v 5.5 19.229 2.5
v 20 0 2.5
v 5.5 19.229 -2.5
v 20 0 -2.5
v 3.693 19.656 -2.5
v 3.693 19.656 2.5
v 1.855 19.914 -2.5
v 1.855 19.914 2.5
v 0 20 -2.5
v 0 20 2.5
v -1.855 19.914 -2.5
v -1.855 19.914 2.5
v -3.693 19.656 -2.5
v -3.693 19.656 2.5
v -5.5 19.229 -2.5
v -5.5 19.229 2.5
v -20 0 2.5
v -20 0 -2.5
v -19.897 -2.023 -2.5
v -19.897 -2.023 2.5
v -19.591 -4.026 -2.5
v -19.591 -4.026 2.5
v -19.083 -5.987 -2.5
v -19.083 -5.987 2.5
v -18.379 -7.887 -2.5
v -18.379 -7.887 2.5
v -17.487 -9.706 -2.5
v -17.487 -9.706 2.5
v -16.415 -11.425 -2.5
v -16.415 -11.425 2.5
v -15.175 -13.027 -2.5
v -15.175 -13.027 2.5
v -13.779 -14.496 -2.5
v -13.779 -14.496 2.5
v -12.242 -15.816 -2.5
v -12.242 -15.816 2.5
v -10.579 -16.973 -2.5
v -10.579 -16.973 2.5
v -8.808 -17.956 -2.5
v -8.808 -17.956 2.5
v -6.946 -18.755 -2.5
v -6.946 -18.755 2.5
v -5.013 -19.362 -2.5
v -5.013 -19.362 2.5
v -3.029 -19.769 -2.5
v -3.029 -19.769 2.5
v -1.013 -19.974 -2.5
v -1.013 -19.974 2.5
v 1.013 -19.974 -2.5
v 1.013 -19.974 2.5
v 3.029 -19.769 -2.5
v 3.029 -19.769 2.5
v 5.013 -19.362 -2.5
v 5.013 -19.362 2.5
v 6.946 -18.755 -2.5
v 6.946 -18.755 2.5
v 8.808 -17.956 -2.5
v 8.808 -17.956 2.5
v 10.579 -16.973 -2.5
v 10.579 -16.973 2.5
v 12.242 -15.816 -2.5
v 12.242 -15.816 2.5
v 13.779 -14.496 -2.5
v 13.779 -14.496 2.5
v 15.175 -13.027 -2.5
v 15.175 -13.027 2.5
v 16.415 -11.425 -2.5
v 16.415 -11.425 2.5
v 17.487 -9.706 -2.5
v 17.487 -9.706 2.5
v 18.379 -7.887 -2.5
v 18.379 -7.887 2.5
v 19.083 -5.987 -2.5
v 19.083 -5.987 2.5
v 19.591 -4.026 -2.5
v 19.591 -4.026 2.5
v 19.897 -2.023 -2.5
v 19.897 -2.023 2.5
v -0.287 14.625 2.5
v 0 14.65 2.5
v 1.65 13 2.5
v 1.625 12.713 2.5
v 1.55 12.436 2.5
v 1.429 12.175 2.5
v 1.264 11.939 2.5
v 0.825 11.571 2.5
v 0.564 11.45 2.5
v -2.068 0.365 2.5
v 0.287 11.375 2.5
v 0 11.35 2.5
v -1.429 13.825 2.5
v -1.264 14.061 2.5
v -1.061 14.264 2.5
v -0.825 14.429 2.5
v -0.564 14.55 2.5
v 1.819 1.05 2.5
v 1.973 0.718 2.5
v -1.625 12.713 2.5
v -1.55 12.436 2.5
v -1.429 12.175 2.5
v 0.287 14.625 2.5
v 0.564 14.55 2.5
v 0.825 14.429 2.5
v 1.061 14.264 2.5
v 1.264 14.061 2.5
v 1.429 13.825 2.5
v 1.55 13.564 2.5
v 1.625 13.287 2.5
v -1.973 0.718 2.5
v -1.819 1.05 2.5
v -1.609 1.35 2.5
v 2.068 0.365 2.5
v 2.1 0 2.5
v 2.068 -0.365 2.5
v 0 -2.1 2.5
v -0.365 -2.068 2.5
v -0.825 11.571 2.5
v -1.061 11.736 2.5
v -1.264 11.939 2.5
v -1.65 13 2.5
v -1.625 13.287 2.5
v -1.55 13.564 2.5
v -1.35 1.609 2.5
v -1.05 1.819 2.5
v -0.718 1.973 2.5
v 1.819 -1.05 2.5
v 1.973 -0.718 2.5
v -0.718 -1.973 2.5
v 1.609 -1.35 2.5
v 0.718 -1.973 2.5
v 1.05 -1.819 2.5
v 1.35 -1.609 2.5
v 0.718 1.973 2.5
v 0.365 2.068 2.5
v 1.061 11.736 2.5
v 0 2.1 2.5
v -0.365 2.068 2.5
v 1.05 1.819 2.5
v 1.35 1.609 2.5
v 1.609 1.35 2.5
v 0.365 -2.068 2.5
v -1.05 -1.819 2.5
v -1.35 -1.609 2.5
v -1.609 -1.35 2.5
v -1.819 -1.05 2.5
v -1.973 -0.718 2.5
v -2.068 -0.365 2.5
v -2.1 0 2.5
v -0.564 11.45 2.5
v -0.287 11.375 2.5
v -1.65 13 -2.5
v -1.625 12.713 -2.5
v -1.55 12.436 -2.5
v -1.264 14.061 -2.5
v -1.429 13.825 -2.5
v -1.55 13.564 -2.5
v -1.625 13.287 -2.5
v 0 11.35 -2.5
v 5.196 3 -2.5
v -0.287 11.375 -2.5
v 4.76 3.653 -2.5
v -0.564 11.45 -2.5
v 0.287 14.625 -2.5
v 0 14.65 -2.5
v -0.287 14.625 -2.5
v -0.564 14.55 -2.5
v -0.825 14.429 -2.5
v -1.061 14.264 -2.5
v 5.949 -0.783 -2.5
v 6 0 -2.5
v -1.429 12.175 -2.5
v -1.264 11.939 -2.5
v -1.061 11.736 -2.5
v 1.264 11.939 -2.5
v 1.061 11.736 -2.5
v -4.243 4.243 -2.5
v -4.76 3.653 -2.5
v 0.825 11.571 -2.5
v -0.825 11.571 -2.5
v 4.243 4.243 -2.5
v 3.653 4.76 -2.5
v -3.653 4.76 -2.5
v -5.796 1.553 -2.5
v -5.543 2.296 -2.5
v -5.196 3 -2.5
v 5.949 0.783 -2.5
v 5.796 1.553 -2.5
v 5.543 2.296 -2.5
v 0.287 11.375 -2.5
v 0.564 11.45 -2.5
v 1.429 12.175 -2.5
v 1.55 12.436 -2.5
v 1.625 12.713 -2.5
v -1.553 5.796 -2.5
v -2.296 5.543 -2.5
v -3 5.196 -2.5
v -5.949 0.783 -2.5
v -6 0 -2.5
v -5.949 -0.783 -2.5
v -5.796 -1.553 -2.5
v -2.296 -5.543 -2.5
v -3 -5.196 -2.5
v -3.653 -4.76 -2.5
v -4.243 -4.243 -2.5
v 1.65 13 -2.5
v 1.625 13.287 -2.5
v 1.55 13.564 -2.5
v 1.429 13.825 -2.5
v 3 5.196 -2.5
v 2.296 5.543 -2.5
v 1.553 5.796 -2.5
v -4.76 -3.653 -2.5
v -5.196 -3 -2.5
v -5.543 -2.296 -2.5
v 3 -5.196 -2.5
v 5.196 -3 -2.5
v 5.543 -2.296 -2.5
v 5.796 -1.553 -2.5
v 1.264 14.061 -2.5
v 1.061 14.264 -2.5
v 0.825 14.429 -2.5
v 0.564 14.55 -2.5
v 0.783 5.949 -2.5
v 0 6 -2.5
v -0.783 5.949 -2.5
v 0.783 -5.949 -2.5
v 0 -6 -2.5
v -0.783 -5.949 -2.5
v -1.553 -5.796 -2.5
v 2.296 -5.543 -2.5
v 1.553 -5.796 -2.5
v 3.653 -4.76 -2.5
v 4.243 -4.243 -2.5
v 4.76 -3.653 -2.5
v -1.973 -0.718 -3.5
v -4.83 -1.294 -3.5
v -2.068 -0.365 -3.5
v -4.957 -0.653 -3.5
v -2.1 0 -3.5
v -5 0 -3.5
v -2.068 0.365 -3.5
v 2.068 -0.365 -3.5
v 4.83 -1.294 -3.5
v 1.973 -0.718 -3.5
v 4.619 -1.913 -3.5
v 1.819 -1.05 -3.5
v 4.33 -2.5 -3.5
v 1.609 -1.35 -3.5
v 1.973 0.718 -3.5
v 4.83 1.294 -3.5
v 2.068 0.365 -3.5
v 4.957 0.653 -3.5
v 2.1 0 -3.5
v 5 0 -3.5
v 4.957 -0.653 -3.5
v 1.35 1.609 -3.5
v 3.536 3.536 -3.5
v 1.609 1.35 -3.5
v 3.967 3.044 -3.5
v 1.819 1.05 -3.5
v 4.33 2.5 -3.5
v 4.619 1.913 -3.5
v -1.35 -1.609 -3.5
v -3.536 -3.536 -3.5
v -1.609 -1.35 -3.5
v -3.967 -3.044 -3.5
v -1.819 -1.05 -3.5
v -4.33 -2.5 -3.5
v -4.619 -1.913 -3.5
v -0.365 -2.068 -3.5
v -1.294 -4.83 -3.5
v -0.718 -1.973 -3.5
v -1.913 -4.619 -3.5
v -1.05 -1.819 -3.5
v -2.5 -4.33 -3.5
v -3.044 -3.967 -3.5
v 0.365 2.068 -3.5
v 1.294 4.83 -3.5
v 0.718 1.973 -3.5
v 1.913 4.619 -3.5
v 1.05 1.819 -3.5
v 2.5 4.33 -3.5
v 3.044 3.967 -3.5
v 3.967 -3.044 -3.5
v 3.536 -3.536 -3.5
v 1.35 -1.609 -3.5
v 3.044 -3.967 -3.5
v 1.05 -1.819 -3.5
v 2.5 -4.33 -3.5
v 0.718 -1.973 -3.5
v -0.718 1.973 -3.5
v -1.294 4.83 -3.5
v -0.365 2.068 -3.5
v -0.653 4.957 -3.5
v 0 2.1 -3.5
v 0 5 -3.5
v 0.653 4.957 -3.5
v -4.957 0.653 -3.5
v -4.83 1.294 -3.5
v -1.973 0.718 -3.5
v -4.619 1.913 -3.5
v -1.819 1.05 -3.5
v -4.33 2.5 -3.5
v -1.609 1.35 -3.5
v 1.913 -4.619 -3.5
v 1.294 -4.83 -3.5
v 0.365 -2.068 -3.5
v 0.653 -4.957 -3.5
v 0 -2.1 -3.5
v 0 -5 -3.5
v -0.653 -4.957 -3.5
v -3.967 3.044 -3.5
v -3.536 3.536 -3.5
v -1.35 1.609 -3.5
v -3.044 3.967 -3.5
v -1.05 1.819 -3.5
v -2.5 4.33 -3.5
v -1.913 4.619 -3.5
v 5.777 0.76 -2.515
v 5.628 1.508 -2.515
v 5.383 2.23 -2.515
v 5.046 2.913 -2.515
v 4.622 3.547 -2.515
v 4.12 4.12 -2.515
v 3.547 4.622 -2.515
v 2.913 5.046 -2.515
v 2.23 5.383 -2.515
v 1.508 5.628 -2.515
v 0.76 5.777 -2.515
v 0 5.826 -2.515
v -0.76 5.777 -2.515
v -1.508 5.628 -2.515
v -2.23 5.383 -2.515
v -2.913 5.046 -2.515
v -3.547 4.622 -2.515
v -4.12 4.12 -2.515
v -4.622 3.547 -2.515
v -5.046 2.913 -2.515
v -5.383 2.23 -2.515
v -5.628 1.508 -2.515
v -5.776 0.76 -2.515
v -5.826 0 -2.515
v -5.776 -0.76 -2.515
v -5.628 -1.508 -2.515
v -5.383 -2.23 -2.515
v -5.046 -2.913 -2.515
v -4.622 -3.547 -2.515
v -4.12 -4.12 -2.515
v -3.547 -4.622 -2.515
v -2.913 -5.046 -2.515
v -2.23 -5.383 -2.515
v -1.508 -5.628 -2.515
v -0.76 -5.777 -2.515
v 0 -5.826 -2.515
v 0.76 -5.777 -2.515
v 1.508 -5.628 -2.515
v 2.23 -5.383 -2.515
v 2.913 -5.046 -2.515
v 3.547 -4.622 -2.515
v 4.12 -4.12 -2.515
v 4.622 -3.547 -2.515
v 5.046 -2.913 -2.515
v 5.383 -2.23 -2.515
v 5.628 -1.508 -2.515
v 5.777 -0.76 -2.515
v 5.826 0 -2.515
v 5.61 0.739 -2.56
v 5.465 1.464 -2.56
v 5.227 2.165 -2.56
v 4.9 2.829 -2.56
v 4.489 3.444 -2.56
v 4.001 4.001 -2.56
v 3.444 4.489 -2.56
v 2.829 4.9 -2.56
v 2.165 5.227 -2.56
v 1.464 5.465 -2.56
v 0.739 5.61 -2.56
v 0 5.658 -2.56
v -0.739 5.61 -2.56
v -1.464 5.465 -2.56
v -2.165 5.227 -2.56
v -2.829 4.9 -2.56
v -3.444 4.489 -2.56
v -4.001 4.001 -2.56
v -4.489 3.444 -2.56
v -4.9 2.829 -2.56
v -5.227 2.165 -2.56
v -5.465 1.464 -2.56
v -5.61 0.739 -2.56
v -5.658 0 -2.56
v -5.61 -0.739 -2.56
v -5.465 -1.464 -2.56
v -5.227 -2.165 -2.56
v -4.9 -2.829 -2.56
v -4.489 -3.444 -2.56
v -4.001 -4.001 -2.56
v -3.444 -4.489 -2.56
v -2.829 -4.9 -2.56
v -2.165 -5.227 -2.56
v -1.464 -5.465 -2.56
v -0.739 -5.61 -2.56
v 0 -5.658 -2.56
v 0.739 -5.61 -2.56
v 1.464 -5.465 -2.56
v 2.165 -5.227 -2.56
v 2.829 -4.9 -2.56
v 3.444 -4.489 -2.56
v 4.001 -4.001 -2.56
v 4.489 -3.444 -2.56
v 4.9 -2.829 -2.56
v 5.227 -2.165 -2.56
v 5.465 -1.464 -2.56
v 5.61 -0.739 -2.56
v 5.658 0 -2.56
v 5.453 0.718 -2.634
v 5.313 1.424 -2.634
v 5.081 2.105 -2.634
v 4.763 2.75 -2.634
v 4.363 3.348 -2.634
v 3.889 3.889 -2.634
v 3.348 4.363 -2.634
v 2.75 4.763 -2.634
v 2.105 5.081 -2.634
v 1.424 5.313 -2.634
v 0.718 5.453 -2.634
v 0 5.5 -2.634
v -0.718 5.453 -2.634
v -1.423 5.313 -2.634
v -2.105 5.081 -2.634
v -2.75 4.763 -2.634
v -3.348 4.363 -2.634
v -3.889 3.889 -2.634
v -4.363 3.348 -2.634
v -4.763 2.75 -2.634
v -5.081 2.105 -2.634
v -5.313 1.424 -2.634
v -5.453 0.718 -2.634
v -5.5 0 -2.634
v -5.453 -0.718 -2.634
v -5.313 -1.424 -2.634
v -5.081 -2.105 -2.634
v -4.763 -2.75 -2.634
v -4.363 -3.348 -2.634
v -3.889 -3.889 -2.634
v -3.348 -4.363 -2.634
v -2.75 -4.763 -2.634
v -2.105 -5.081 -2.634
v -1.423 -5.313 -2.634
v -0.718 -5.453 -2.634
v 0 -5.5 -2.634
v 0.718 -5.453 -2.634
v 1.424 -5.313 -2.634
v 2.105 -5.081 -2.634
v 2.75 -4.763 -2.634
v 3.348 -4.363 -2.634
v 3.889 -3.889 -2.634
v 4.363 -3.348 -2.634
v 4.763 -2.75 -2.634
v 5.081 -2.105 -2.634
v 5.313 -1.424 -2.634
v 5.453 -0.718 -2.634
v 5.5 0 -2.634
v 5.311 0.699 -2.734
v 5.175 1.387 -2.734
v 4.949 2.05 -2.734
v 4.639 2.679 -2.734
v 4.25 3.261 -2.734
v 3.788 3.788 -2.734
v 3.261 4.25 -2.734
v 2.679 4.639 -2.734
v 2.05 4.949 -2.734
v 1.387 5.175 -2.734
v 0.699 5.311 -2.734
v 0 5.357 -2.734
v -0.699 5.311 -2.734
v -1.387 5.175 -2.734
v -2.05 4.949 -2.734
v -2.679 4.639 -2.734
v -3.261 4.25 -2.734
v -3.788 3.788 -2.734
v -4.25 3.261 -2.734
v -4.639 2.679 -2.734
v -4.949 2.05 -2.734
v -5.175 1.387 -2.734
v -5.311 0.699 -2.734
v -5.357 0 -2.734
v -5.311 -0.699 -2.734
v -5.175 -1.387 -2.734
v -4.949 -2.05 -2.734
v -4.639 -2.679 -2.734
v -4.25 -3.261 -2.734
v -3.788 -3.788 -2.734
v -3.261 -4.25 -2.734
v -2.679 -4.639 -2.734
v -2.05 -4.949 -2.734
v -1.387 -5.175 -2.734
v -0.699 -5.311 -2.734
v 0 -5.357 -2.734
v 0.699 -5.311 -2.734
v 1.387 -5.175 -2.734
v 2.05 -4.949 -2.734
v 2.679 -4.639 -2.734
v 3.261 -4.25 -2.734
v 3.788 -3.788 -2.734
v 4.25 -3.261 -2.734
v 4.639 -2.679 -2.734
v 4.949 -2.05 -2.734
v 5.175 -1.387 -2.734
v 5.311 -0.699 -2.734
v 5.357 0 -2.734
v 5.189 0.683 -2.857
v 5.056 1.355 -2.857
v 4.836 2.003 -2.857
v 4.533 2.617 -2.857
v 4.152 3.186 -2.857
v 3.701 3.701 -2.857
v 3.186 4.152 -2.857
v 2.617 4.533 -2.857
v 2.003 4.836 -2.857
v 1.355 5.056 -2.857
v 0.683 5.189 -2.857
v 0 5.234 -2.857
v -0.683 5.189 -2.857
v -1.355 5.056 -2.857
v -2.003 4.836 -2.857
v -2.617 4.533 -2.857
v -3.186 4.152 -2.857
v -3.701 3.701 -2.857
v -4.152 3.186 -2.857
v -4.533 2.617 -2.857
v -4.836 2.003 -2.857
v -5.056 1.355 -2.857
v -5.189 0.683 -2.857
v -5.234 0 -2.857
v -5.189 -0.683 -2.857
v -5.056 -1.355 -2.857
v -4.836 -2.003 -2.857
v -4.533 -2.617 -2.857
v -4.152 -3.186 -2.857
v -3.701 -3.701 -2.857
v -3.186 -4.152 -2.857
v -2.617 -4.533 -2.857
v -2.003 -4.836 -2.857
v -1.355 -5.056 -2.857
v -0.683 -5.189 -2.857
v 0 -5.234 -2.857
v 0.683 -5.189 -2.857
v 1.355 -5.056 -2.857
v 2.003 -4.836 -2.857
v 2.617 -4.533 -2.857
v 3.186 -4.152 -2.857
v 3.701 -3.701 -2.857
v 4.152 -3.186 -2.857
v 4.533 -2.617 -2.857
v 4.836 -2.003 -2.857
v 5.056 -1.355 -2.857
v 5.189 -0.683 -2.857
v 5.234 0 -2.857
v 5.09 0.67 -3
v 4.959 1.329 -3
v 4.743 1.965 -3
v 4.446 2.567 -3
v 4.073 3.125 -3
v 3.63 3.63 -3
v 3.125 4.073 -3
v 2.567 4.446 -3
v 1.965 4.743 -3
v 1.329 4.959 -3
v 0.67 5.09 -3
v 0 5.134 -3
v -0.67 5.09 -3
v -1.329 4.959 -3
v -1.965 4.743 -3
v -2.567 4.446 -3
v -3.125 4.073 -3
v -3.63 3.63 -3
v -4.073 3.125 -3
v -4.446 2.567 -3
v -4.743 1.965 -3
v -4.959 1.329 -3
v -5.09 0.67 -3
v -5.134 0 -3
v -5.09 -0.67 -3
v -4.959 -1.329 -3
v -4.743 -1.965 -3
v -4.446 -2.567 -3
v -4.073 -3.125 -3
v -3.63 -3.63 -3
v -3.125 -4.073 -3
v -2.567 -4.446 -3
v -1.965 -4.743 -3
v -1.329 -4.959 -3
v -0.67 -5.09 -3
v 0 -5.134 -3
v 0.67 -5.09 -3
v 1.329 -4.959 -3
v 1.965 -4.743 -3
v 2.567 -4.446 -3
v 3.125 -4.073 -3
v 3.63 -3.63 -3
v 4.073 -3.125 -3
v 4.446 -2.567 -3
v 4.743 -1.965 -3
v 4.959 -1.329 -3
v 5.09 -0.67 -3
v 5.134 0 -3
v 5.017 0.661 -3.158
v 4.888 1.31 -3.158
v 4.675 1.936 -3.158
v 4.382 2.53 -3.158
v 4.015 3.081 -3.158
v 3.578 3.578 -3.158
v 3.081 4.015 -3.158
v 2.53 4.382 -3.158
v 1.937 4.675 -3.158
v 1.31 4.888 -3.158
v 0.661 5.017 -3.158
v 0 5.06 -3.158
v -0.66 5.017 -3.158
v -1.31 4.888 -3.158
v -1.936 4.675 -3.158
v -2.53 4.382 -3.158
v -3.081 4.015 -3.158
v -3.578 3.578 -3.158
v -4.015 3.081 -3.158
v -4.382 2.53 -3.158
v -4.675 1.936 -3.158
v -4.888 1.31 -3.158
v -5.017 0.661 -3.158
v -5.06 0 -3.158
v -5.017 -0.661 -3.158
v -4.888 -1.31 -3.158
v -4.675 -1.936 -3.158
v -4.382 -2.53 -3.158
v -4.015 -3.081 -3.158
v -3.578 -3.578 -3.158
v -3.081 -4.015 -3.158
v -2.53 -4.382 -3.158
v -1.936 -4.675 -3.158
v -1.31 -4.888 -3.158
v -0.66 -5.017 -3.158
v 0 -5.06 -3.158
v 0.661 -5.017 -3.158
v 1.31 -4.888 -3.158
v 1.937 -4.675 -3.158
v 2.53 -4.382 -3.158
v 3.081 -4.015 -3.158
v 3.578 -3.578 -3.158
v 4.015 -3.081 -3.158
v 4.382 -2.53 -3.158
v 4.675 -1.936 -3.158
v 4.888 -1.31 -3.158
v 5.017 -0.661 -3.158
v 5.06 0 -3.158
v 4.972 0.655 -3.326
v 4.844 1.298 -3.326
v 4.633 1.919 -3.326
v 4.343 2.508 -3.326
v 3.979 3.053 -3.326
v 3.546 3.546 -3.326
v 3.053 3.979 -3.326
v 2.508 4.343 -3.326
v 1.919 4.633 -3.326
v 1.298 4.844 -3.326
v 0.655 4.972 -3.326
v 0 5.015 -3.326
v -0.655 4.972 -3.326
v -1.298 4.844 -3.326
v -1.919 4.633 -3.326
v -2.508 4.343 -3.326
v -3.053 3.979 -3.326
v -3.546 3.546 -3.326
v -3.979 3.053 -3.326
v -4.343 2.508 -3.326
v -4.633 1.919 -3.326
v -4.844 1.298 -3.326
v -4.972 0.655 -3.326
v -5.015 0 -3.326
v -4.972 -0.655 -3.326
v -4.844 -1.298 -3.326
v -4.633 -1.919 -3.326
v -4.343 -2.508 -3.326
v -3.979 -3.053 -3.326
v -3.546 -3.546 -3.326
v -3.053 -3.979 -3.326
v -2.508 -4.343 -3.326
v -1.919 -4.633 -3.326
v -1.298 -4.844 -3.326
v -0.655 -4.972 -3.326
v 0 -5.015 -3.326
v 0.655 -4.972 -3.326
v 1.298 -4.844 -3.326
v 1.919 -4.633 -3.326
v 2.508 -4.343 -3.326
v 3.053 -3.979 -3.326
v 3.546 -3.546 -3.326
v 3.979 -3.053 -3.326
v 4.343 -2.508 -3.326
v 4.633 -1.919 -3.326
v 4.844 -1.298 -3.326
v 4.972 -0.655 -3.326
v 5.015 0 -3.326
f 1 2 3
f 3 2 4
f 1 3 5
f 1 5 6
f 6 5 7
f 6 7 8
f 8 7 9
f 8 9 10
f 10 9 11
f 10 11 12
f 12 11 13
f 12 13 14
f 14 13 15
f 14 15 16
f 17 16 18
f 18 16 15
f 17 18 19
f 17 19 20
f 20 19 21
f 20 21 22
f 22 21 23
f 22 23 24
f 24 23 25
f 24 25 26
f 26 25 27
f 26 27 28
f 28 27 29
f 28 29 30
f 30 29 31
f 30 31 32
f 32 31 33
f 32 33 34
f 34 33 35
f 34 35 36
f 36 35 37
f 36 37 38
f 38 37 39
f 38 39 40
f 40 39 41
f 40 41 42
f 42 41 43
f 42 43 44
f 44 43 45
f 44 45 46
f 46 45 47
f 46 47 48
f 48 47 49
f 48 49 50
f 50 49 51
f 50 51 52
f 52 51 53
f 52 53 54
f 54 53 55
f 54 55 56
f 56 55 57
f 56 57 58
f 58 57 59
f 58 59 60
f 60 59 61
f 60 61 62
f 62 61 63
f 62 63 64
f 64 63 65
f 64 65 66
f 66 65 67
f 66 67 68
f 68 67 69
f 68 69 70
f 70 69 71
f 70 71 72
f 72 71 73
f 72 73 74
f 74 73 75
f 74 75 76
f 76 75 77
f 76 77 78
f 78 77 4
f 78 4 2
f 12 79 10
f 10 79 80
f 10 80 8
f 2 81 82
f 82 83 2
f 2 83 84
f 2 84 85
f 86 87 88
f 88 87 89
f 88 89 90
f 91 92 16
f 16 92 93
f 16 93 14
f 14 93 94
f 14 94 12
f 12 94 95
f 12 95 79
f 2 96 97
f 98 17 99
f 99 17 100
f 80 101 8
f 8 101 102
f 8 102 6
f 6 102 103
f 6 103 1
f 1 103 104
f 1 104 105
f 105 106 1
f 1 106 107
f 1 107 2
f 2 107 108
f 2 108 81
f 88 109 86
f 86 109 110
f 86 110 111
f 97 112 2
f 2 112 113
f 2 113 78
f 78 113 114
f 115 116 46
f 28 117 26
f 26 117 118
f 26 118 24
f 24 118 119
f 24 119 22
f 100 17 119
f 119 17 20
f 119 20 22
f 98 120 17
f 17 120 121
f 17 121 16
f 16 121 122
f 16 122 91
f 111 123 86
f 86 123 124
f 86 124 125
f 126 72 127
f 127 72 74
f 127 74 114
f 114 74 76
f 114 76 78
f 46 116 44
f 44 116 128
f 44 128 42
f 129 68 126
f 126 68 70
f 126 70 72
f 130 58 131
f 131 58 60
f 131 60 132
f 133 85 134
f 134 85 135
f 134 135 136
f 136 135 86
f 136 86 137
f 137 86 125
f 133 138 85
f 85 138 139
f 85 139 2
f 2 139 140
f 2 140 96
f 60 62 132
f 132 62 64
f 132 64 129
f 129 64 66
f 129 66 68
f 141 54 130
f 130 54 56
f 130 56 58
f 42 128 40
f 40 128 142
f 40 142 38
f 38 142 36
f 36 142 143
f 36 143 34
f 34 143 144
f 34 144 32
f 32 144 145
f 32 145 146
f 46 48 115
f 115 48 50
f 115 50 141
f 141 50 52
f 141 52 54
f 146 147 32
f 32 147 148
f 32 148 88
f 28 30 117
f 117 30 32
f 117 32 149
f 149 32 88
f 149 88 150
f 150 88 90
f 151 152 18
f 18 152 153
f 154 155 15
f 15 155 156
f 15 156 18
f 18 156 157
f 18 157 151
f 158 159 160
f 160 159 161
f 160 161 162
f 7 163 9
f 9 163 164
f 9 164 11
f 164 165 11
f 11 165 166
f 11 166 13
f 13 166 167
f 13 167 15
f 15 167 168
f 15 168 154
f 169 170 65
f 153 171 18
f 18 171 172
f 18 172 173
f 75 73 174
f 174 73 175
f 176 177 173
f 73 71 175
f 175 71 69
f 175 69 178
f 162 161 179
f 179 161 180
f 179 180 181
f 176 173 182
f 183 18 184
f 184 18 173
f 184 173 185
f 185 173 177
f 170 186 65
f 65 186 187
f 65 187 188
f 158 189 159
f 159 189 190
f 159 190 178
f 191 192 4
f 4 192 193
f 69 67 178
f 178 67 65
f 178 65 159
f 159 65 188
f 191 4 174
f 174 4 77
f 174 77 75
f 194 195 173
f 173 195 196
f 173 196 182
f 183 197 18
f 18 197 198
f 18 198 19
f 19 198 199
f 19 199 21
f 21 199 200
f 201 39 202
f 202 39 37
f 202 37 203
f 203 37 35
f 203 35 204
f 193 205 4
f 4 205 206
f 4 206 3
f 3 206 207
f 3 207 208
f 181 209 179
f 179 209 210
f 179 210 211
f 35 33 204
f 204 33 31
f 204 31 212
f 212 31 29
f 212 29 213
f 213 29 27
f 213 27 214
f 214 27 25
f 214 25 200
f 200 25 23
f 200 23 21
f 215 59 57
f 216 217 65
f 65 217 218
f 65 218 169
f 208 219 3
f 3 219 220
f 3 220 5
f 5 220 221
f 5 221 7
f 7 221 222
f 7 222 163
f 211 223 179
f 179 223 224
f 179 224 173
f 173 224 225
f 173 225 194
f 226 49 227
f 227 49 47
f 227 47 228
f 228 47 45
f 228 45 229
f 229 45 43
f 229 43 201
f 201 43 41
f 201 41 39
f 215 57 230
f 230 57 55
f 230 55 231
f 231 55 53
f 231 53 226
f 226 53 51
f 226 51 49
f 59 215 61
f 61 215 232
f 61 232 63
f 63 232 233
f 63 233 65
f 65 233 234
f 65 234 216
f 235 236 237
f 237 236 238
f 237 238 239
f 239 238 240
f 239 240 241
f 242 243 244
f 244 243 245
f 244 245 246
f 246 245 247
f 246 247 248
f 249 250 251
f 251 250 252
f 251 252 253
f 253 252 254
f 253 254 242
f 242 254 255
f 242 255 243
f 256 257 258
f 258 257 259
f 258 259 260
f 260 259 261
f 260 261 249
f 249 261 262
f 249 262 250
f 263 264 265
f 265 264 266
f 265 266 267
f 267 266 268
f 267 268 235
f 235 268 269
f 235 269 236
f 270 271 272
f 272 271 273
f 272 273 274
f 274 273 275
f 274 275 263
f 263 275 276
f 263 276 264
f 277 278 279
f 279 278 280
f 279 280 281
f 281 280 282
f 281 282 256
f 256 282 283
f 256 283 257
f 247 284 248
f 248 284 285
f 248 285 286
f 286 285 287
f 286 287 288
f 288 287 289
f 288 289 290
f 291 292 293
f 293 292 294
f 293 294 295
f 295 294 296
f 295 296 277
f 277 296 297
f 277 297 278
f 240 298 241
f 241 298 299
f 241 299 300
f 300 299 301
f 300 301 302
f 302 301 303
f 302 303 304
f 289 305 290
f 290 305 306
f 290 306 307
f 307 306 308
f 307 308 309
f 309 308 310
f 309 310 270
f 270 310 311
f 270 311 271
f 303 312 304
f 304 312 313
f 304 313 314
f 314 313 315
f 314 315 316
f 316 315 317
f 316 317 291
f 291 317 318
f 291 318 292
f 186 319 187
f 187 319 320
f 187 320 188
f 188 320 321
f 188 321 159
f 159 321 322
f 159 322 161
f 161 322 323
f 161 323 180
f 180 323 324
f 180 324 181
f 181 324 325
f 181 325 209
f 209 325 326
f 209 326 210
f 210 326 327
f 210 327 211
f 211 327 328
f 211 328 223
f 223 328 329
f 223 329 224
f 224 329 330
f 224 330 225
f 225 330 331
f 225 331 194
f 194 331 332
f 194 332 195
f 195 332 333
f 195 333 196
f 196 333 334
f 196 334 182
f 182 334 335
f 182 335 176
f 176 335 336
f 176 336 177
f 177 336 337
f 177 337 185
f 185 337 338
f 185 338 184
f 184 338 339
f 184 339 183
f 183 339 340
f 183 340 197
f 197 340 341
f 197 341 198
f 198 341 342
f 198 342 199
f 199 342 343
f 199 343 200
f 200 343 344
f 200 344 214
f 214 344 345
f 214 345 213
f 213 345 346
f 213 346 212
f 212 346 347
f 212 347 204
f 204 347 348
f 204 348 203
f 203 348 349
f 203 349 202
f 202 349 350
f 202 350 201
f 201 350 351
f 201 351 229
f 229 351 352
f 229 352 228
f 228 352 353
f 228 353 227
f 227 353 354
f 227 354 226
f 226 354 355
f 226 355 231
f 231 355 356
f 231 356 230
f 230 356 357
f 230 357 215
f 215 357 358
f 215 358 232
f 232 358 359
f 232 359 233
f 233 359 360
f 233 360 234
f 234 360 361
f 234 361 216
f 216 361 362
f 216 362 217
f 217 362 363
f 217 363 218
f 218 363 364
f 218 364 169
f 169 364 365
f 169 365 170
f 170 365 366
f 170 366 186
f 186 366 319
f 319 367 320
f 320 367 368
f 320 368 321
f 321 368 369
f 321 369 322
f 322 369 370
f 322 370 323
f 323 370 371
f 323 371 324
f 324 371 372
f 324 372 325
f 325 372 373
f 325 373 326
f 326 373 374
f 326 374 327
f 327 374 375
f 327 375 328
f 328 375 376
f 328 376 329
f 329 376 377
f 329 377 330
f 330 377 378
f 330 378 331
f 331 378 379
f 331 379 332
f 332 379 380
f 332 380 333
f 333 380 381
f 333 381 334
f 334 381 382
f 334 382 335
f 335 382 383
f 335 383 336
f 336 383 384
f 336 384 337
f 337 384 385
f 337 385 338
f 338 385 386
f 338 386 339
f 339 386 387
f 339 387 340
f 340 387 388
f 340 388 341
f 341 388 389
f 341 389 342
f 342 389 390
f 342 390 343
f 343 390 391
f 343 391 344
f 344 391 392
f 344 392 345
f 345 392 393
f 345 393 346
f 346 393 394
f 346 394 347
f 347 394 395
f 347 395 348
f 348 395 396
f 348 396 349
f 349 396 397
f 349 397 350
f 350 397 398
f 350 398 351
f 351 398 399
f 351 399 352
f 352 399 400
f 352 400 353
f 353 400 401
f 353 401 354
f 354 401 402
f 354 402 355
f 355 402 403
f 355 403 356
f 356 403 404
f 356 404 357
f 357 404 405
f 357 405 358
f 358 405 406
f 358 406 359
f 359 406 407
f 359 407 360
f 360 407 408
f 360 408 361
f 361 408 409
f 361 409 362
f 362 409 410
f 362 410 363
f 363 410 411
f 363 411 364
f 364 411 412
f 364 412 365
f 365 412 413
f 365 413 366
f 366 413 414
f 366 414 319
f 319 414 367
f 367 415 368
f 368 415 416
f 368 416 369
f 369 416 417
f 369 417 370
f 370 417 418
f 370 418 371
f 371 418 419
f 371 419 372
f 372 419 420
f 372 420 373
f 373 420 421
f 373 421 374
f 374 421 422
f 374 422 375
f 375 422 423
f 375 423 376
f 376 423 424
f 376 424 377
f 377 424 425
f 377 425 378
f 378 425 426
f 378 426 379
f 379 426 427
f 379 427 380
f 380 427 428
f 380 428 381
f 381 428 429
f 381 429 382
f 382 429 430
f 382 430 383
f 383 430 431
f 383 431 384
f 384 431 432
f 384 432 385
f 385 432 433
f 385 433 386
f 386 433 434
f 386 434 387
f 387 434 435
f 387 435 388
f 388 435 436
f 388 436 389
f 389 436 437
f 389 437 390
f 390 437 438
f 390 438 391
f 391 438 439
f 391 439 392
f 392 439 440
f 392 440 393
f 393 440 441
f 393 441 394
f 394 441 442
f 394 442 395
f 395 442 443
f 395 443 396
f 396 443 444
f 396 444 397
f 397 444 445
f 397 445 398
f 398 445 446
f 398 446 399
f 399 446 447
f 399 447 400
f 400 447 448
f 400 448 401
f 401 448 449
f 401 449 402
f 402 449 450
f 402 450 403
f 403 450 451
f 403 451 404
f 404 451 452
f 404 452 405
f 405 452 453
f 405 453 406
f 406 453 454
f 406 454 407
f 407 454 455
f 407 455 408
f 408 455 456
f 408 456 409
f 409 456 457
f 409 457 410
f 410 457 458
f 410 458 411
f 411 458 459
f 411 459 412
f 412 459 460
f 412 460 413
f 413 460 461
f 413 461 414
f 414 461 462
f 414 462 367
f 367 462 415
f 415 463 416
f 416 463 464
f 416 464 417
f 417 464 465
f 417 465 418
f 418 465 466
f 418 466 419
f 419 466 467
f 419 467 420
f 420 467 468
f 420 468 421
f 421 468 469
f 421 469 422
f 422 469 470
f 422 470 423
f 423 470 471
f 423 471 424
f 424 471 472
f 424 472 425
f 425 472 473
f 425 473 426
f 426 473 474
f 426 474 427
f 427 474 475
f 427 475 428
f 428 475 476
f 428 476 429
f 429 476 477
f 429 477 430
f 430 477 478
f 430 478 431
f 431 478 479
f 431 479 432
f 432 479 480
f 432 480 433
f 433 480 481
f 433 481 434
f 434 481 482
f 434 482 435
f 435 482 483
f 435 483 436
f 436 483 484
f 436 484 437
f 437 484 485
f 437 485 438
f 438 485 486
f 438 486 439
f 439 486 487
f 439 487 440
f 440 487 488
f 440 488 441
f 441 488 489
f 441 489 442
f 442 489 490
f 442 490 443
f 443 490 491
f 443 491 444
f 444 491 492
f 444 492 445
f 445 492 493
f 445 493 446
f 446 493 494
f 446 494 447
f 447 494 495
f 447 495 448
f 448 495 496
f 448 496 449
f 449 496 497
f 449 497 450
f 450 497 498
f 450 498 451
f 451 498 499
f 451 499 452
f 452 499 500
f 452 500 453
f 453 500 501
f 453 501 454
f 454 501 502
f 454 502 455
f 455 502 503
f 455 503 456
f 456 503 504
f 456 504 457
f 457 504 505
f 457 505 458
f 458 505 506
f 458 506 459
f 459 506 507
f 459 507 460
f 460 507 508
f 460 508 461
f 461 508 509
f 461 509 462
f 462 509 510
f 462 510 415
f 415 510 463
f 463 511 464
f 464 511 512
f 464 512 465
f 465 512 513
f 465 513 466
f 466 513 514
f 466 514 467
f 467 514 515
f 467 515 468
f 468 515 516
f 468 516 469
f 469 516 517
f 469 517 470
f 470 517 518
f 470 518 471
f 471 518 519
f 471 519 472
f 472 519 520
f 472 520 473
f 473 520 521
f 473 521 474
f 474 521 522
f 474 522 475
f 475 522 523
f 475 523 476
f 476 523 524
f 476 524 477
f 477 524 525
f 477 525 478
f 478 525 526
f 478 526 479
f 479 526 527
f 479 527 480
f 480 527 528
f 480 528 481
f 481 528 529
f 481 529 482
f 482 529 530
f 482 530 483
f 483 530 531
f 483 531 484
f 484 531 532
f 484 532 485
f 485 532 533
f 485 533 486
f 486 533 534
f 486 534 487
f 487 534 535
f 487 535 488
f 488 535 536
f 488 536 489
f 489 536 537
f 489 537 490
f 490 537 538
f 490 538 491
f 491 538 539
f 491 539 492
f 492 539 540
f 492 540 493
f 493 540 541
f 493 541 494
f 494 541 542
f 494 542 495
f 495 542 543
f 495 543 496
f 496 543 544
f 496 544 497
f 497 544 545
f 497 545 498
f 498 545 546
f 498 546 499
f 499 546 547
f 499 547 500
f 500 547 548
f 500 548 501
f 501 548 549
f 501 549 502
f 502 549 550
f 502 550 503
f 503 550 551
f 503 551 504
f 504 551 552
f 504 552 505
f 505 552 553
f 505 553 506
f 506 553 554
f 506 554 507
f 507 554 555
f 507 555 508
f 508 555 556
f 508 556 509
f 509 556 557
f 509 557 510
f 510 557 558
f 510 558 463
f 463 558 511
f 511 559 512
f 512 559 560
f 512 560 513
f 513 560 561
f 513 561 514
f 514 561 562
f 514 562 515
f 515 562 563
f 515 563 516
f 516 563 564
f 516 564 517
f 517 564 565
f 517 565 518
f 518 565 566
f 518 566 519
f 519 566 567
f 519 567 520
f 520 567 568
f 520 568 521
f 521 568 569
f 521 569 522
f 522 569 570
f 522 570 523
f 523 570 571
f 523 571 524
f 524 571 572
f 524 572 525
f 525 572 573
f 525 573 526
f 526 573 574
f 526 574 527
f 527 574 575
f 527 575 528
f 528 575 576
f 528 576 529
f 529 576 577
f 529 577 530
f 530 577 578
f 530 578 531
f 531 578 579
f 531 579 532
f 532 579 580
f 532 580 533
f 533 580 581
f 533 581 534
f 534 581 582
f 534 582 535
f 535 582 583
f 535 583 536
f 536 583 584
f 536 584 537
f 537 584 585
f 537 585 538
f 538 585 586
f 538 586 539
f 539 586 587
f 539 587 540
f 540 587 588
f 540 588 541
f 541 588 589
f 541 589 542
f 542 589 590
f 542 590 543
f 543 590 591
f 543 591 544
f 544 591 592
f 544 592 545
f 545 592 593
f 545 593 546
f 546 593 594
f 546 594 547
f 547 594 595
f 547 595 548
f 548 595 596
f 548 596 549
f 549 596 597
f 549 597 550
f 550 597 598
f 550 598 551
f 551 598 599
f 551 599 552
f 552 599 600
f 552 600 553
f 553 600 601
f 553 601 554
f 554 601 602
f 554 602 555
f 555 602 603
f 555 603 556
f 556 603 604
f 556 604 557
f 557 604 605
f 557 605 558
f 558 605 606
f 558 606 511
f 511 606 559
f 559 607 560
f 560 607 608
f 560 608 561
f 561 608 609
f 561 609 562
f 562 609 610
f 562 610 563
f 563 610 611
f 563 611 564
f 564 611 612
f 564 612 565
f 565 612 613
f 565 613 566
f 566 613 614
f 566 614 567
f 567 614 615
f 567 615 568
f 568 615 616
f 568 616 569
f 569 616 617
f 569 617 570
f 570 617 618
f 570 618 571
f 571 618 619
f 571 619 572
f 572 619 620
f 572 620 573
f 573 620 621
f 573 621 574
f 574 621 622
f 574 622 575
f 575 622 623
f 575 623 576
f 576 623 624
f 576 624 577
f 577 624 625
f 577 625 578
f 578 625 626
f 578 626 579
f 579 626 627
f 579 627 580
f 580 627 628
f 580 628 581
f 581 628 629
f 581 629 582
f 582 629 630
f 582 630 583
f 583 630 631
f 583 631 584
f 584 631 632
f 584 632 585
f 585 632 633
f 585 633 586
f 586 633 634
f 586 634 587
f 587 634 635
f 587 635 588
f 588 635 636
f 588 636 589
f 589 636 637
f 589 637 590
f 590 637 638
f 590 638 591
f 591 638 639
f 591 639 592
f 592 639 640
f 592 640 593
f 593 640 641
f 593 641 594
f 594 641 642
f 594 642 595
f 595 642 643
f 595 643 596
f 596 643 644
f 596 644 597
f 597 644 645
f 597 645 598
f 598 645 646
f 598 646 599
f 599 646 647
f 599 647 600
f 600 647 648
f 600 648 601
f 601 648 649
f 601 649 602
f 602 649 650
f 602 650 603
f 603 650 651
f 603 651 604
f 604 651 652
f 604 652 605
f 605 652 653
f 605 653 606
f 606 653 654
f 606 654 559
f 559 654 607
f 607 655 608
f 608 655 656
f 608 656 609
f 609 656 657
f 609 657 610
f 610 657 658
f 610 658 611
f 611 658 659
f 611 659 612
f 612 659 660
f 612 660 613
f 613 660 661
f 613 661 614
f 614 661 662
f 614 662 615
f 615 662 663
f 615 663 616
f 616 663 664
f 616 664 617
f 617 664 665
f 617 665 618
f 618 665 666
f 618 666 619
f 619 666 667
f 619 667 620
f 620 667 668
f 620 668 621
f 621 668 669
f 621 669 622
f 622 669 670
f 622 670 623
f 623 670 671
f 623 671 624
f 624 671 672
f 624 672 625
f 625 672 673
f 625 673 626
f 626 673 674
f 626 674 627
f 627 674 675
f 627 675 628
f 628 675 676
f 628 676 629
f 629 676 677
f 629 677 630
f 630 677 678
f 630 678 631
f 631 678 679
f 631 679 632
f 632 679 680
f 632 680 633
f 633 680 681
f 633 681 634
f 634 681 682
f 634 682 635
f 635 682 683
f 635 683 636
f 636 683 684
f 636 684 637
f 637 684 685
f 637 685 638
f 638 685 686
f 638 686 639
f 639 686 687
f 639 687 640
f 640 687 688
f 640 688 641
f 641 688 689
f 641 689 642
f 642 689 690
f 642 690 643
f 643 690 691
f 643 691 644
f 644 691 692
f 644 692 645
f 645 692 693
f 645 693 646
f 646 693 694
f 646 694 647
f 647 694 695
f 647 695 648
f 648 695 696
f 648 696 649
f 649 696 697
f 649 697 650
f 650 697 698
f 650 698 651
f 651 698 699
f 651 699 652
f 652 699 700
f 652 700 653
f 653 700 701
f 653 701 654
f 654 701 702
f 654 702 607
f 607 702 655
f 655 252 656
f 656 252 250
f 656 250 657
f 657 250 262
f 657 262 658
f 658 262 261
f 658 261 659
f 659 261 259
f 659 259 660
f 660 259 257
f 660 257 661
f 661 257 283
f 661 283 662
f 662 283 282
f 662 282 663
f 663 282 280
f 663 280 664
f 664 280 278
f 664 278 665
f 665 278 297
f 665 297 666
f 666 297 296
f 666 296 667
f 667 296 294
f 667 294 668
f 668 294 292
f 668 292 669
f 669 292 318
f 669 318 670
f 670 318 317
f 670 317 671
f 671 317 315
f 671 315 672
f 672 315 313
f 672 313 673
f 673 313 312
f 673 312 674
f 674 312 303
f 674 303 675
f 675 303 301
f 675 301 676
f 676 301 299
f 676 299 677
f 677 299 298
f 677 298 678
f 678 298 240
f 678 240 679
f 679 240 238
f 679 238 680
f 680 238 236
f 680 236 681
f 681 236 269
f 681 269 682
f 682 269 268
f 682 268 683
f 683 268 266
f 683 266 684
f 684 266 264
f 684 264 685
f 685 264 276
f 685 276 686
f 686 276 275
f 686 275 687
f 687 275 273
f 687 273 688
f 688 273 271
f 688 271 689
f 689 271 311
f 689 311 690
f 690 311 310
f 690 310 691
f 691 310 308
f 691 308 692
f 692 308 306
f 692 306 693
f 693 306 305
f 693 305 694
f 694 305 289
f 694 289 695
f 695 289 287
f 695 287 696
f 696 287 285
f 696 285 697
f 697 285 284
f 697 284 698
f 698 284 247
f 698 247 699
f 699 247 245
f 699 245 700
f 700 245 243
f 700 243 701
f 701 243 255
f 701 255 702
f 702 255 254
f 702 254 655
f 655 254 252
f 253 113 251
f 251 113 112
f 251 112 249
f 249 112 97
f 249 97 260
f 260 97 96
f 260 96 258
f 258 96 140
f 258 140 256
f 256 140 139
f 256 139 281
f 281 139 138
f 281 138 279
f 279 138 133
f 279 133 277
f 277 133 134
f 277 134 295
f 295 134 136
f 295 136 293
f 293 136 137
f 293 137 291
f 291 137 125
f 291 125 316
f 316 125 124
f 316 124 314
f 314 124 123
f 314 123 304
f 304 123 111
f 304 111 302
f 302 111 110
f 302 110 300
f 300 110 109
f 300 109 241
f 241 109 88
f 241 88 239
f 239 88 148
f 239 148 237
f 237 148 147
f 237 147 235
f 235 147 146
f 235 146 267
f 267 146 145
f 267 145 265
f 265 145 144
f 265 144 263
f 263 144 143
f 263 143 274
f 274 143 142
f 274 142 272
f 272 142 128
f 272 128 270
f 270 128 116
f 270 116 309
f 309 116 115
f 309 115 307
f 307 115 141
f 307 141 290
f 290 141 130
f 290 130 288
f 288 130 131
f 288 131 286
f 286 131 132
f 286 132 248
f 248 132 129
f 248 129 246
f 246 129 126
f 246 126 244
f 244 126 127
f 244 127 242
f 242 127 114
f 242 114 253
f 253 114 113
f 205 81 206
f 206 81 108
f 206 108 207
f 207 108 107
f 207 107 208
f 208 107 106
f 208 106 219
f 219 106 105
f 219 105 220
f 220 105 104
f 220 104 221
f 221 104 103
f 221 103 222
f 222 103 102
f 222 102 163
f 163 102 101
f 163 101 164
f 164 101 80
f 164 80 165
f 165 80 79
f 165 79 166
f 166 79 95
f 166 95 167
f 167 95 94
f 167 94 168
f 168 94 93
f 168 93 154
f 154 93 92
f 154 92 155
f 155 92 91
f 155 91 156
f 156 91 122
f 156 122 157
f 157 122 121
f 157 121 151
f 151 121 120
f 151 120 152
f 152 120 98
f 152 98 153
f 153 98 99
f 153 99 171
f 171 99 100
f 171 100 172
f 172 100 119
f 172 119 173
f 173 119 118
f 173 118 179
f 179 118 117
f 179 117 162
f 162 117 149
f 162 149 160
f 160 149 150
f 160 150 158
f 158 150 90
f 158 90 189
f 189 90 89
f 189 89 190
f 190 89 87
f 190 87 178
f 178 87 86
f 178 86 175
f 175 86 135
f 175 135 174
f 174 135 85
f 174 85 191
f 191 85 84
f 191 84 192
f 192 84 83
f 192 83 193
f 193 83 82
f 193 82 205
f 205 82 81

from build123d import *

# Parameters (mm, degrees)
BOSS_EXTRUDE1_DEPTH = 2.5
SKETCH2_R           = 5
BOSS_EXTRUDE2_DEPTH = 1
FILLET1_R           = 1
M5_TAPPED_HOLE1_D   = 4.2
M4_TAPPED_HOLE1_D   = 3.3


with BuildPart() as part:
    # Sketch1 → Boss-Extrude1 (new, symmetric)
    with BuildSketch(Plane.XY):
        with BuildLine():
            Line((-5.5, 19.228884523), (-20, 0))
            ThreePointArc((-20, 0), (0, -20), (20, 0))
            Line((20, 0), (5.5, 19.228884523))
            ThreePointArc((5.5, 19.228884523), (0, 20), (-5.5, 19.228884523))
        make_face()
    extrude(amount=BOSS_EXTRUDE1_DEPTH, both=True)

    # Sketch2 → Boss-Extrude2 (add)
    with BuildSketch(Plane(origin=(0, 0, -2.5), x_dir=(-1, 0, 0), z_dir=(0, 0, -1))):
        Circle(SKETCH2_R)
    extrude(amount=BOSS_EXTRUDE2_DEPTH)

    # Fillet1
    fillet1_edges = [part.edges().sort_by_distance(p)[0] for p in [
        (5, 0, -2.5),
    ]]
    fillet(fillet1_edges, radius=FILLET1_R - 0.0001)  # a hair under: the kernel refuses the full size

    # M5 Tapped Hole1 (through all)
    with Locations(Plane.XY.offset(2.5)):
        with Locations((0, 0)):
            Hole(M5_TAPPED_HOLE1_D / 2)

    # M4 Tapped Hole1 (through all)
    with Locations(Plane(origin=(0, 13, 2.5), x_dir=(1, 0, 0), z_dir=(0, 0, 1))):
        with Locations((0, 0)):
            Hole(M4_TAPPED_HOLE1_D / 2)


solid = part.part
